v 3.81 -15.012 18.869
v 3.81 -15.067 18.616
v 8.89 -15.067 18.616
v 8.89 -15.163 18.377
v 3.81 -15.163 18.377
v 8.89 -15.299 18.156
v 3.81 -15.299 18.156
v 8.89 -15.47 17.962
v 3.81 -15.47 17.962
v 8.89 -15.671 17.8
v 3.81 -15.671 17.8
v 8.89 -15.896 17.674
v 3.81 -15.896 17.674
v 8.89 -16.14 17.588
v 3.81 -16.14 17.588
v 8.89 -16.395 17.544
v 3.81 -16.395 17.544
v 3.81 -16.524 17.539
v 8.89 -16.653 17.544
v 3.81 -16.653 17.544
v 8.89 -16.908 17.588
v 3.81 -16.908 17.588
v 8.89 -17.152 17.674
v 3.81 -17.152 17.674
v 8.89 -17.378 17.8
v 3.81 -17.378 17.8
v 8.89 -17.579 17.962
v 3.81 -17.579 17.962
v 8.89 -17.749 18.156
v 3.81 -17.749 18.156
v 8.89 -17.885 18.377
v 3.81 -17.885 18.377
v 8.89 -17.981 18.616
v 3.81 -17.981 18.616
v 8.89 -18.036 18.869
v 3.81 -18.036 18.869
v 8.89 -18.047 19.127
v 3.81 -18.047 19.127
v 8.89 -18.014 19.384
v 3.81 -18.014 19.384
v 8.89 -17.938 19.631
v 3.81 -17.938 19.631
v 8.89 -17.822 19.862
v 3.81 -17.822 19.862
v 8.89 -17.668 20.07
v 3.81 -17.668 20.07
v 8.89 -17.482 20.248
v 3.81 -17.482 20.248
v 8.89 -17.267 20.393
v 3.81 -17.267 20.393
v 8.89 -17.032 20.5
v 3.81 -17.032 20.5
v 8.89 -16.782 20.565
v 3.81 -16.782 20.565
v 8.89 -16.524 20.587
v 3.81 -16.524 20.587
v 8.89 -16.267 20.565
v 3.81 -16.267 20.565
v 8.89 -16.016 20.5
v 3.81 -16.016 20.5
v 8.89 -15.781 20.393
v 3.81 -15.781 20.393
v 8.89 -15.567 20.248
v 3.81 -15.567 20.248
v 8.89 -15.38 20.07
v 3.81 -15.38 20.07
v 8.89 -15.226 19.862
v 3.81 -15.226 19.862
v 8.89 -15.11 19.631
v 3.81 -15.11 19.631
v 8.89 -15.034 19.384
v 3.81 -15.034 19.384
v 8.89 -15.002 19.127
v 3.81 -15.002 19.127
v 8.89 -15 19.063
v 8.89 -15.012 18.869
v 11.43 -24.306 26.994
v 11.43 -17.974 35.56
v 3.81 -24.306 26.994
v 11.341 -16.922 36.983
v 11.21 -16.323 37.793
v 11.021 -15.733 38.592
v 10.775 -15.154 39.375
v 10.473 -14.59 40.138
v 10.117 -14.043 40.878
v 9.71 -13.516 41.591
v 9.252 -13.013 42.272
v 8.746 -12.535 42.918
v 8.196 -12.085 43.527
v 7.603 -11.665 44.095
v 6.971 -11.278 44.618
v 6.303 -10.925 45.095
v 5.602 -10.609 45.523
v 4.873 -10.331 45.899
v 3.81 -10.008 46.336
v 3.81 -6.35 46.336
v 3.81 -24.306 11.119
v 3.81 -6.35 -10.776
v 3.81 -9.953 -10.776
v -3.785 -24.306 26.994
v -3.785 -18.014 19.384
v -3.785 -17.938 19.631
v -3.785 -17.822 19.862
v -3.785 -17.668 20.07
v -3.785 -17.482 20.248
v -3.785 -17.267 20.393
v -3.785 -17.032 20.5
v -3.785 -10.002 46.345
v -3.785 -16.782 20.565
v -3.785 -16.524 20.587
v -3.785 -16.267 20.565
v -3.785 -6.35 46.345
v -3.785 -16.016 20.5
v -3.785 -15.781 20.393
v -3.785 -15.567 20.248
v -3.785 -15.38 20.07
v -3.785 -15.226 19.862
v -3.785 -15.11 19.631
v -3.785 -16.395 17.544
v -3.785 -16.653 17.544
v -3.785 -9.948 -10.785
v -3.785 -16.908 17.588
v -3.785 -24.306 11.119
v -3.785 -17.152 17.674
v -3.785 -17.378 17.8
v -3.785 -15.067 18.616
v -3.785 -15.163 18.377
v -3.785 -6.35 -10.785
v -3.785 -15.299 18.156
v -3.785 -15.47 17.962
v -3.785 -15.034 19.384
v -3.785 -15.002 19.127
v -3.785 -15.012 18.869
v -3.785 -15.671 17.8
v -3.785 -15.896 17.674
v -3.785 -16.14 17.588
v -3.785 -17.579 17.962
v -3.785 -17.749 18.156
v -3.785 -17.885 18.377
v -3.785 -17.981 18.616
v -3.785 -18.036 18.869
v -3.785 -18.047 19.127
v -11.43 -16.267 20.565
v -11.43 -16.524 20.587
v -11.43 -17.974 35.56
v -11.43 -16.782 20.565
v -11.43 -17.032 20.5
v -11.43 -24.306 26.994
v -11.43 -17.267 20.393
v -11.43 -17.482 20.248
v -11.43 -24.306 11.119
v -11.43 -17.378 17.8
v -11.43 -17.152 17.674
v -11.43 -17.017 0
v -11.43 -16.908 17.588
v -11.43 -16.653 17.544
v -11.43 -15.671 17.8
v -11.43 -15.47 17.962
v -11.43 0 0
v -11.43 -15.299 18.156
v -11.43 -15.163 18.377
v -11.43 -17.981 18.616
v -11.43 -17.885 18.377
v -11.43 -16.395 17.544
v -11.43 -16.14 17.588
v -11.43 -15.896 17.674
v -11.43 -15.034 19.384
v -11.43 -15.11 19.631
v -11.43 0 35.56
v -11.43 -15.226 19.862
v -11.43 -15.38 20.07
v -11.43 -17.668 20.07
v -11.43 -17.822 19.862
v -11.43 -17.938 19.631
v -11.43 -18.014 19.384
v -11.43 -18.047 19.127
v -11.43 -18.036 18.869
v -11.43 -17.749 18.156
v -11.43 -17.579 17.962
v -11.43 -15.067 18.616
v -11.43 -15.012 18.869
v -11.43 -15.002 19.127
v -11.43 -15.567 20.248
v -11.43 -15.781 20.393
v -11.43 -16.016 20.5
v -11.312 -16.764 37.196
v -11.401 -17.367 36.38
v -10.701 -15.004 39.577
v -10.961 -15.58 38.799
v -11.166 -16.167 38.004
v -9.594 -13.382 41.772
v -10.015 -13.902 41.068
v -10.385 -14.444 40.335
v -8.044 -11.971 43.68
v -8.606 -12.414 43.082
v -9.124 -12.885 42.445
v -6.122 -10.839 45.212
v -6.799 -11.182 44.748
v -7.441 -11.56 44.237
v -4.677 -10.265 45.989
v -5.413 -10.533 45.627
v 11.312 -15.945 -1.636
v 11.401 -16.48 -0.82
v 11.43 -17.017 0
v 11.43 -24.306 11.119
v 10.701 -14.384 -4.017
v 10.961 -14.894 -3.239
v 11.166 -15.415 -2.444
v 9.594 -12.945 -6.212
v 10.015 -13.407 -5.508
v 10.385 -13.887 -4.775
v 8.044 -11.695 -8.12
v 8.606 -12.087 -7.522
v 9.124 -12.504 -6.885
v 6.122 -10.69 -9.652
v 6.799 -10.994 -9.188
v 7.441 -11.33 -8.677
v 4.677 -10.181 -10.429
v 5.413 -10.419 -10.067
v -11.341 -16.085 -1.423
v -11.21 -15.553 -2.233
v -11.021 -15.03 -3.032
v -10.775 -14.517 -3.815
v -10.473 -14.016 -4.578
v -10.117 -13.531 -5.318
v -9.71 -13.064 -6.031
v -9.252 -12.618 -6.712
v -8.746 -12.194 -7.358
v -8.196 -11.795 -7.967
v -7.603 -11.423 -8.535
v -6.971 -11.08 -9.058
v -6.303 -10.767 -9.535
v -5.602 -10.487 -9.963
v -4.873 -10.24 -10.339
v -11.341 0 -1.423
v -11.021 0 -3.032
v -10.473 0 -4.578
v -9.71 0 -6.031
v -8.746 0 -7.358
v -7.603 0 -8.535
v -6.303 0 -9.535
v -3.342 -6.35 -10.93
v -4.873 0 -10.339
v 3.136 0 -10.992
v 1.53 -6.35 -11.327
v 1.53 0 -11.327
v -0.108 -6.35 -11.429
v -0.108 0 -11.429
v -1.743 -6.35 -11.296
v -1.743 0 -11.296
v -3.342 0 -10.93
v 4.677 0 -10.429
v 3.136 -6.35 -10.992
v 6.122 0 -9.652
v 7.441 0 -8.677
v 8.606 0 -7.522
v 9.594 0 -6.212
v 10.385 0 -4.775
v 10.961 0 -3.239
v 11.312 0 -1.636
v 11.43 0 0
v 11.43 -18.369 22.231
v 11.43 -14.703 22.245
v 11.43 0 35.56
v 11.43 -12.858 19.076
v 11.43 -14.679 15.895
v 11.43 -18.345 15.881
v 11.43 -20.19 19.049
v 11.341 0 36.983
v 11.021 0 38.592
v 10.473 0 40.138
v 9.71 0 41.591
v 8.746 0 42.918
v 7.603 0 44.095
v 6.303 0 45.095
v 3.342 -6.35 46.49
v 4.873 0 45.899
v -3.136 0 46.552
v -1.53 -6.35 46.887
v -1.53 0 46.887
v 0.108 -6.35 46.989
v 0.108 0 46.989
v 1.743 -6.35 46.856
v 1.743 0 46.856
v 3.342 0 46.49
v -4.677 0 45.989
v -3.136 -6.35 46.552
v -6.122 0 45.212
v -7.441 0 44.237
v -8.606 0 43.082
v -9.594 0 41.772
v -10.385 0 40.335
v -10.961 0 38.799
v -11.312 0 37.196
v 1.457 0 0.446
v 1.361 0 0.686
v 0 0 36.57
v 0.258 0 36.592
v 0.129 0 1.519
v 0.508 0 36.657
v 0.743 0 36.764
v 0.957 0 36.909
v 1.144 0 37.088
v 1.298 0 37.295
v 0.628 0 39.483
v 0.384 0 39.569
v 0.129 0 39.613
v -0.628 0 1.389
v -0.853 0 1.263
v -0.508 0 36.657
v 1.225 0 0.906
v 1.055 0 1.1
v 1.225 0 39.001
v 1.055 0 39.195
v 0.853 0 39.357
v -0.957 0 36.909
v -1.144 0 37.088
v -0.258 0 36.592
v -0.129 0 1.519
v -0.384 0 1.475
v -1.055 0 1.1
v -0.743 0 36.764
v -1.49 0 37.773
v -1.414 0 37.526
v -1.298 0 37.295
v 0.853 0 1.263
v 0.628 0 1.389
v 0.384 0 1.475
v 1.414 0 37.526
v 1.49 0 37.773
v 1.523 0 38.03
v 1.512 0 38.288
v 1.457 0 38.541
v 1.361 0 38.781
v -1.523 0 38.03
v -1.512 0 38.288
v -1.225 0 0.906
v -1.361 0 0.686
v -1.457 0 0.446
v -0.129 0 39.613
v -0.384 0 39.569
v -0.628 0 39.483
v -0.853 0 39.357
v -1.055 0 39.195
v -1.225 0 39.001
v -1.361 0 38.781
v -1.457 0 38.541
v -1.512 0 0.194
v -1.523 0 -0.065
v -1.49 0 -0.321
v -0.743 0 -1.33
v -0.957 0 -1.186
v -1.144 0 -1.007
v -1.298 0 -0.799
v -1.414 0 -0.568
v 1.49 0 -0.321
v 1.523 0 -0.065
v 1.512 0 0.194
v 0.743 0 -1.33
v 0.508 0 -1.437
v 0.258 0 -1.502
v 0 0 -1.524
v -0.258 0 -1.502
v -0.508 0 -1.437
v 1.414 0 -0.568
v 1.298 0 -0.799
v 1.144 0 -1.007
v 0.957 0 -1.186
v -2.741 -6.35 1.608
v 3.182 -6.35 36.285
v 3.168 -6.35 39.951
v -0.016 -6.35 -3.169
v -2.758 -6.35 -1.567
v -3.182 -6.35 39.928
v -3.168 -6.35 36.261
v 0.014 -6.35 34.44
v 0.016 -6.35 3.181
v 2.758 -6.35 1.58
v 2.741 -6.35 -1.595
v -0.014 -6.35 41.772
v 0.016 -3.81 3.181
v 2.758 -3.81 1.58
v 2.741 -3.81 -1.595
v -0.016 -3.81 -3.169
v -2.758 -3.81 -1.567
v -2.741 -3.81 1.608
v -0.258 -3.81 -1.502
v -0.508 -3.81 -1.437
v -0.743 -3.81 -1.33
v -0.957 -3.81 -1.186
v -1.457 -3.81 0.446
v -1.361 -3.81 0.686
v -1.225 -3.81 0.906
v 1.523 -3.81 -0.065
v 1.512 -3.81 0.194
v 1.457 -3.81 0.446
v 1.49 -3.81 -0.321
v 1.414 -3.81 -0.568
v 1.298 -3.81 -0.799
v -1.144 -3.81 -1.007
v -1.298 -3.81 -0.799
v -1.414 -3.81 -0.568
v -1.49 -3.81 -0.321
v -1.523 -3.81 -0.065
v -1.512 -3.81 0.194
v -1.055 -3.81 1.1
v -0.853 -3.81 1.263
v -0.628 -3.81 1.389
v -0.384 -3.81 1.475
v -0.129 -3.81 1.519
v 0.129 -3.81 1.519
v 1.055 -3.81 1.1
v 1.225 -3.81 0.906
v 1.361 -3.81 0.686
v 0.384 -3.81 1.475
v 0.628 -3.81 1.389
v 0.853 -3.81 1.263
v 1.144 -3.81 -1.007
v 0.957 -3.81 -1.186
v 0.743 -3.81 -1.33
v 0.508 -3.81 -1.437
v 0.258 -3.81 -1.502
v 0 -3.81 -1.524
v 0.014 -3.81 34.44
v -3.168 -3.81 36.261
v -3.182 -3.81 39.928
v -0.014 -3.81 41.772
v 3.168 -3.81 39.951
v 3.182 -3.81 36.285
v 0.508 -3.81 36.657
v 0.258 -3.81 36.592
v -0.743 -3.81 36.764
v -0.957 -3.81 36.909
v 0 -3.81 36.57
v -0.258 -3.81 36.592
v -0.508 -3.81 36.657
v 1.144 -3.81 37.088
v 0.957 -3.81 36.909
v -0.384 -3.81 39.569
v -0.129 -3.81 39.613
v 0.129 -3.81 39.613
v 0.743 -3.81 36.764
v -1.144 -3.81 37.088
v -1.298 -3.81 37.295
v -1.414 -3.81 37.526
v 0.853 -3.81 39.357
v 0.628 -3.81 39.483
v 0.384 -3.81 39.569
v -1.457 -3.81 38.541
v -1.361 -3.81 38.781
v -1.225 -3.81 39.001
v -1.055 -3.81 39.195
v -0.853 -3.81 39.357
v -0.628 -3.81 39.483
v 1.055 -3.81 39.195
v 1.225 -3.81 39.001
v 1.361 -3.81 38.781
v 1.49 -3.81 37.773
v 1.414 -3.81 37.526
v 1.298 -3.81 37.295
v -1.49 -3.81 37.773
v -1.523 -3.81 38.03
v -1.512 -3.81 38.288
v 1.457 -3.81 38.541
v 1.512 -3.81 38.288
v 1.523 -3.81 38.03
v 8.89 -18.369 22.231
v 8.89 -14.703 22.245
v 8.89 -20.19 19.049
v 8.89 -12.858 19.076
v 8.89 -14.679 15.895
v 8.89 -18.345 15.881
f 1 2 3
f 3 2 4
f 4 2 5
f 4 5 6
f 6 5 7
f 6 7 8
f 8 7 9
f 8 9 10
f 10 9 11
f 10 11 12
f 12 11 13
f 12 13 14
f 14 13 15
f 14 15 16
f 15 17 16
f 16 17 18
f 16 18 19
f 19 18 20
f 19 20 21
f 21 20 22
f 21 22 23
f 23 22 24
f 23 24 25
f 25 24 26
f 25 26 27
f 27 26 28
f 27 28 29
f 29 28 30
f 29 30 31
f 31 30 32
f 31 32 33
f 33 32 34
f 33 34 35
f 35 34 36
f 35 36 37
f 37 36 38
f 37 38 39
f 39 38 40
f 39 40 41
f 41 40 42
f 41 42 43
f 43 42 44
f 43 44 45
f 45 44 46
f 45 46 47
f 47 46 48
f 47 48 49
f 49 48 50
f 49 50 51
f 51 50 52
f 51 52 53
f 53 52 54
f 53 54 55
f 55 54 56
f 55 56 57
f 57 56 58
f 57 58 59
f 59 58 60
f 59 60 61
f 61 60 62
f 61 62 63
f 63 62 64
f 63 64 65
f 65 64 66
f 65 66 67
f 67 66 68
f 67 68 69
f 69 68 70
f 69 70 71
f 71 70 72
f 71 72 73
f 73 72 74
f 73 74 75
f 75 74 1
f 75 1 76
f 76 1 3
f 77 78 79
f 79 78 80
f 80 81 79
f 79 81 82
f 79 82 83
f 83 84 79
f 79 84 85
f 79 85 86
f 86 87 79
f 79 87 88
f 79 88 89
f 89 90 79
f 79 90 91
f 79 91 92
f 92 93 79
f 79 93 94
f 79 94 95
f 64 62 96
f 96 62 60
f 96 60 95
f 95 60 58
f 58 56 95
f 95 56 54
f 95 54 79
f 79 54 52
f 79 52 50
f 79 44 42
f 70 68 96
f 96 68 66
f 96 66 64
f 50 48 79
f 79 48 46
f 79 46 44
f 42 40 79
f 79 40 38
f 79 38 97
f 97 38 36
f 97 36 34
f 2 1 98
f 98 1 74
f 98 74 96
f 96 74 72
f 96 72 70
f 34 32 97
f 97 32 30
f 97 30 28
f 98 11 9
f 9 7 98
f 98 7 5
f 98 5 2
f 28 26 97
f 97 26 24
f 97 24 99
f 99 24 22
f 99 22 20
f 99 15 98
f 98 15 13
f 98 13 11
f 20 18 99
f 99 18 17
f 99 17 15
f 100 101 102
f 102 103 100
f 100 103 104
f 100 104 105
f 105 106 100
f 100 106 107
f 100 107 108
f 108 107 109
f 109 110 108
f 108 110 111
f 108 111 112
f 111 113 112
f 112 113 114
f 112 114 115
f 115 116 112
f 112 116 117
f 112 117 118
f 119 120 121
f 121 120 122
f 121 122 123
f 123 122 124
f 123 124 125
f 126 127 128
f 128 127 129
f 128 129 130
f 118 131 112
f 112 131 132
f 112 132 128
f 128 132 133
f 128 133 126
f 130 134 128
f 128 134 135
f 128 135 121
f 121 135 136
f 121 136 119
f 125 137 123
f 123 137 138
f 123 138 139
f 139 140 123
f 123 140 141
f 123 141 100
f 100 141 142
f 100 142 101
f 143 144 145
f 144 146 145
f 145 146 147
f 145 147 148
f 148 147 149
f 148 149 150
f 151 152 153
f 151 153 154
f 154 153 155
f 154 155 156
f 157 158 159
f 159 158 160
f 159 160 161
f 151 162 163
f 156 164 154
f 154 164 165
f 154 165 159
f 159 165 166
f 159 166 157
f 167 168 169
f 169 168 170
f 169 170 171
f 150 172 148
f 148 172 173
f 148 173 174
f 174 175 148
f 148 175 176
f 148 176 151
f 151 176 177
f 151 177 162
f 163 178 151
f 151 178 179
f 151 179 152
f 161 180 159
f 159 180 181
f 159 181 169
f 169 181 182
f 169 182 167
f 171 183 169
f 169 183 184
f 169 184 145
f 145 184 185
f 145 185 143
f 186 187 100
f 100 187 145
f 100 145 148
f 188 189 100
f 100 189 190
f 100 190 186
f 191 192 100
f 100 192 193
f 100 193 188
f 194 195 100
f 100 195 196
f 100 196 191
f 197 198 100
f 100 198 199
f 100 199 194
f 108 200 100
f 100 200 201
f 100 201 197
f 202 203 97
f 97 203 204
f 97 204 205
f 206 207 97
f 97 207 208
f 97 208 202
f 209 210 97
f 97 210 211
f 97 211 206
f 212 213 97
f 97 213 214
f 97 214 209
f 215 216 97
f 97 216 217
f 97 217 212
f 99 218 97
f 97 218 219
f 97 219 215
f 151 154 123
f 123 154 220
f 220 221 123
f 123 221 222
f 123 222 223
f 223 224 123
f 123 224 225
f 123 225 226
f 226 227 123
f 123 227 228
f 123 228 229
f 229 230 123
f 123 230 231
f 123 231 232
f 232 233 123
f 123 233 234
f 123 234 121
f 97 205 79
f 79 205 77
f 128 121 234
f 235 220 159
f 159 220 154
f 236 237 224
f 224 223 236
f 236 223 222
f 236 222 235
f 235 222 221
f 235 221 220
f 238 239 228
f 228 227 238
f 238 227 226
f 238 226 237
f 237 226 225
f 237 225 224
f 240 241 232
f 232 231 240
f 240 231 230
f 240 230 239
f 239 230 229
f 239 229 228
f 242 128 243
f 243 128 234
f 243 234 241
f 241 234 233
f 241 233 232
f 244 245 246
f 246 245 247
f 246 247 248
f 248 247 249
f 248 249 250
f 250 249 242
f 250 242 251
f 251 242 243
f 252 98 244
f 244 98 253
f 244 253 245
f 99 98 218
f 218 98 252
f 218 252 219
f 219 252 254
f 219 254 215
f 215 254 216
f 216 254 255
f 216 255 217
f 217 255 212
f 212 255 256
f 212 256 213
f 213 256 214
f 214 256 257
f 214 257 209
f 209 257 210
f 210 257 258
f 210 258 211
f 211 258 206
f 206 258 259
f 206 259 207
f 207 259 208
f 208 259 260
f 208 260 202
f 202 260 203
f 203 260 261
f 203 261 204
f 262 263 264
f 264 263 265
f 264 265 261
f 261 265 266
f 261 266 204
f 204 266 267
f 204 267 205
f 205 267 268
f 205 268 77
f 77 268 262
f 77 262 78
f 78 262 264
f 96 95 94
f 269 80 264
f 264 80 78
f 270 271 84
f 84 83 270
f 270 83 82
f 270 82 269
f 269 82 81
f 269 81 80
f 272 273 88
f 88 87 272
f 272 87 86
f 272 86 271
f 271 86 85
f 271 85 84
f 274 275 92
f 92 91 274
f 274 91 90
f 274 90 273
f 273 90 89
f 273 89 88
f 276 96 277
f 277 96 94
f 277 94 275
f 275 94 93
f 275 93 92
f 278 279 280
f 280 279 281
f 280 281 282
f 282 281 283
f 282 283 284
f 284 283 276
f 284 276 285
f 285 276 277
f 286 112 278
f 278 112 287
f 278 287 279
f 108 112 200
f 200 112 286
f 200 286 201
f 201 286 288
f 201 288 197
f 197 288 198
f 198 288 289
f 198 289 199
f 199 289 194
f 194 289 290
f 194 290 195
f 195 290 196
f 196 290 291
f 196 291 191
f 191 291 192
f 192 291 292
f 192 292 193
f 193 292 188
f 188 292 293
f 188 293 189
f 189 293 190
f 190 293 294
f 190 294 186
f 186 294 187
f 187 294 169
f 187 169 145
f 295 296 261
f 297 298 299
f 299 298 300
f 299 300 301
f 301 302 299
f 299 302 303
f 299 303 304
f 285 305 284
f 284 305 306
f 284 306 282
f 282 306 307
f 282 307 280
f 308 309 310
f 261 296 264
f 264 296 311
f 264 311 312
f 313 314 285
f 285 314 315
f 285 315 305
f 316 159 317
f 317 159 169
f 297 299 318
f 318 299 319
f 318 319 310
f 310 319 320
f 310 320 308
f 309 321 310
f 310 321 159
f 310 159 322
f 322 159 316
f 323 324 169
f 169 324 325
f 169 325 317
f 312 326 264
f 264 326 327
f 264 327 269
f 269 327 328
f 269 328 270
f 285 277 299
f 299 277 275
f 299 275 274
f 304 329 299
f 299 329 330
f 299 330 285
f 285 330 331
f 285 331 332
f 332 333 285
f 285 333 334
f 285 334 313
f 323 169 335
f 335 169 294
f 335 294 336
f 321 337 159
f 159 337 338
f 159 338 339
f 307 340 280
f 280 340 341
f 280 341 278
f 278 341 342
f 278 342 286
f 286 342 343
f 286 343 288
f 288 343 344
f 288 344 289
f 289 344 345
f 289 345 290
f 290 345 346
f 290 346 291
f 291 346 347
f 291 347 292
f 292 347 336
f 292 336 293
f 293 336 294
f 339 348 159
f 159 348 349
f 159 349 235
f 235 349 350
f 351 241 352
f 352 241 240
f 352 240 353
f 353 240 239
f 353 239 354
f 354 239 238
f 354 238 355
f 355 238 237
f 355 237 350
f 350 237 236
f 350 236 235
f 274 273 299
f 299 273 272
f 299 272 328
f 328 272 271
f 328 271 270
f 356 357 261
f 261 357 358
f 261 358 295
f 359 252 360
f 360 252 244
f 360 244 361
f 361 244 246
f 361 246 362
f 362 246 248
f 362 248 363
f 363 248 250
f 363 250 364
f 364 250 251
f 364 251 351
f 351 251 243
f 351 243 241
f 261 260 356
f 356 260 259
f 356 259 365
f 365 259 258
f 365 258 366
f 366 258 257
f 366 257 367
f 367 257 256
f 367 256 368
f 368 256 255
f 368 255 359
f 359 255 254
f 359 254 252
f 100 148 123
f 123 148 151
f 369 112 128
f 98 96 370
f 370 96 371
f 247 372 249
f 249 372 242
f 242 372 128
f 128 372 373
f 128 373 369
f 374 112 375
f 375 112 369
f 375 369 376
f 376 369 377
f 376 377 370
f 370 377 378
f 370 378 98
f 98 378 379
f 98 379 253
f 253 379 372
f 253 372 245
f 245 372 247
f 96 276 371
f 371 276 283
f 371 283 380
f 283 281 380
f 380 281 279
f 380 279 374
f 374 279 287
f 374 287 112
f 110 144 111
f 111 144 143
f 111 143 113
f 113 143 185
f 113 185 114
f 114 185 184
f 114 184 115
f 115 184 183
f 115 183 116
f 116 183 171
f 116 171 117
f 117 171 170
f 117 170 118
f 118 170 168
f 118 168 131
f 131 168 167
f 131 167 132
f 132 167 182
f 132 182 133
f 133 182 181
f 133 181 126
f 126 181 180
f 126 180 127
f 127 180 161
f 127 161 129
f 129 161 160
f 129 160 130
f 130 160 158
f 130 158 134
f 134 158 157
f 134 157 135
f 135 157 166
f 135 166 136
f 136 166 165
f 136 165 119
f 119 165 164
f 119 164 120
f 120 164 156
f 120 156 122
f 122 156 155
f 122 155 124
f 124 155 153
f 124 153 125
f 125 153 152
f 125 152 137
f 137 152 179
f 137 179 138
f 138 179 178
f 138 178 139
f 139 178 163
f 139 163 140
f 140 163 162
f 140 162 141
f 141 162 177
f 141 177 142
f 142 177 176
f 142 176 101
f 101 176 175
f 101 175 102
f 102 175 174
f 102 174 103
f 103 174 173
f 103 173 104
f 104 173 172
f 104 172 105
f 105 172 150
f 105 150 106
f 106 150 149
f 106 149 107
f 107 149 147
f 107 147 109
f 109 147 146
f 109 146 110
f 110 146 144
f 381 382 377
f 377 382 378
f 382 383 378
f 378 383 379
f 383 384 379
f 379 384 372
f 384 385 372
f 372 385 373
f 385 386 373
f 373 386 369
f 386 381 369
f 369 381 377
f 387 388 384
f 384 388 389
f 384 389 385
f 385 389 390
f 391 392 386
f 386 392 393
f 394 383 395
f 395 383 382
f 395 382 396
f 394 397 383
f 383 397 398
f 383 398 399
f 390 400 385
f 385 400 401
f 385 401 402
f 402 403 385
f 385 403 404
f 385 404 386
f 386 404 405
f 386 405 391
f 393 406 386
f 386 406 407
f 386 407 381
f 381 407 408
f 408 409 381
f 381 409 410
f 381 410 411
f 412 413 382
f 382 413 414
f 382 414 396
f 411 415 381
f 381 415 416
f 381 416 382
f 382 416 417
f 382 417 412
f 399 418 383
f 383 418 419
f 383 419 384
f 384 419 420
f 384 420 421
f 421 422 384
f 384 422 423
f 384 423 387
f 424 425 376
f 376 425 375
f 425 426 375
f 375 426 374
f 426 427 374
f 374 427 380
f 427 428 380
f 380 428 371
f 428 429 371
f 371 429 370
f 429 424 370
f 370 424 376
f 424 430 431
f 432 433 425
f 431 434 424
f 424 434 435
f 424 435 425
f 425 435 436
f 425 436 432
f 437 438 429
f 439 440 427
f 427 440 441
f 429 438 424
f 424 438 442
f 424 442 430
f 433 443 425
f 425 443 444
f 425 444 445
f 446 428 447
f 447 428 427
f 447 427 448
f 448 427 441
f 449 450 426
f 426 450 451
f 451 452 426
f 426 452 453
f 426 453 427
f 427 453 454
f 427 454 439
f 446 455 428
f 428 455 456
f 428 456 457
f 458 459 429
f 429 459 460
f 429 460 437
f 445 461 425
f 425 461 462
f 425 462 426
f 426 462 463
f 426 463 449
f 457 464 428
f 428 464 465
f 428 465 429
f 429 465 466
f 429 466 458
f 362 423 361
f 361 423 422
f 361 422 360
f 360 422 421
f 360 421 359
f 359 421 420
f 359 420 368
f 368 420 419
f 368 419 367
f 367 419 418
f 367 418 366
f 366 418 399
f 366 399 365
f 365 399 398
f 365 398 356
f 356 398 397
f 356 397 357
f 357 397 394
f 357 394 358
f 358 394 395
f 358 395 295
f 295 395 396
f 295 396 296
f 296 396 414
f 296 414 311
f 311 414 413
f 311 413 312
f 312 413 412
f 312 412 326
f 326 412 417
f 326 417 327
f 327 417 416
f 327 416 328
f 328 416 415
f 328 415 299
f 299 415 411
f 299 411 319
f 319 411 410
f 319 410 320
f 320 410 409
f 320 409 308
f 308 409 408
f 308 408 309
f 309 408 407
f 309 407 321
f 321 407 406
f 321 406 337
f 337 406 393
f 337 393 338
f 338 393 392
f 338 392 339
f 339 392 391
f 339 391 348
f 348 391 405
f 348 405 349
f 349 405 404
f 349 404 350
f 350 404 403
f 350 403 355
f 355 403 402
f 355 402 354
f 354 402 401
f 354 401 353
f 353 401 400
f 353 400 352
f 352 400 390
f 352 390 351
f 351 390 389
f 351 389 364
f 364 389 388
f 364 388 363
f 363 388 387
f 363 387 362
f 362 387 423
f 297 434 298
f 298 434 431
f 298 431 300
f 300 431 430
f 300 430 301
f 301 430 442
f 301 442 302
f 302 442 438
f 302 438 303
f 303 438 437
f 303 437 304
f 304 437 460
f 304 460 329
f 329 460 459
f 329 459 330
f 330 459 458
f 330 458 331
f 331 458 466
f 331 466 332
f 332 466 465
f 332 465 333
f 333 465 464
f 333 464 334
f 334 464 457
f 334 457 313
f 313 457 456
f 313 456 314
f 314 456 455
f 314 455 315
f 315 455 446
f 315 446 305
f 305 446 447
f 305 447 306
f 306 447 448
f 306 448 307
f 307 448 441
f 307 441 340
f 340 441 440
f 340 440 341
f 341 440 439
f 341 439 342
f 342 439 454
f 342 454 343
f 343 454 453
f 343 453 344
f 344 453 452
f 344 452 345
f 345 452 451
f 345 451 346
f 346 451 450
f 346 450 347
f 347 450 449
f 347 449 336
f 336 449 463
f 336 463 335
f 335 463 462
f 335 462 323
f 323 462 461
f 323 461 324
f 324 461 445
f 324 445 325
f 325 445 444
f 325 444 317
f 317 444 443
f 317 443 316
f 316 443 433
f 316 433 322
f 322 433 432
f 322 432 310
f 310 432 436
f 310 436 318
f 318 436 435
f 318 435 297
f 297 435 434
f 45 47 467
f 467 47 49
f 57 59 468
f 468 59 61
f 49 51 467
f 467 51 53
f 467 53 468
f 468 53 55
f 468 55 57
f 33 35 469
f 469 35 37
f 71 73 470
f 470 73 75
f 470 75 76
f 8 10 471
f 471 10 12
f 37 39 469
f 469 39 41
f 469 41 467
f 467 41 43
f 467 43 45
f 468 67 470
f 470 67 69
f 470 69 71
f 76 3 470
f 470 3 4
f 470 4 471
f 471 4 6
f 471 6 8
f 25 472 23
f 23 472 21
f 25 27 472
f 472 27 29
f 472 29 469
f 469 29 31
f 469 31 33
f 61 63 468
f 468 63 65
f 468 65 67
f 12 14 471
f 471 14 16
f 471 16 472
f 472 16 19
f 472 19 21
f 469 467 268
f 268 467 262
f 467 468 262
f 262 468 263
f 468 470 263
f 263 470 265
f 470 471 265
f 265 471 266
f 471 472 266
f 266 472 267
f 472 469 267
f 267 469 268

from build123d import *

# Parameters (mm, degrees)
BOSS_EXTRUDE1_DEPTH      = 6.35
BOSS_EXTRUDE3_DEPTH      = 11.43
BOSS_EXTRUDE3_DEPTH_BACK = 11.43
CUT_EXTRUDE13_DEPTH      = 55.124538916
CUT_EXTRUDE13_DEPTH_BACK = 55.124538916
SKETCH11_W               = 7.59470995
SKETCH11_H               = 29.201393096
CUT_EXTRUDE19_START      = -17.955569585
CUT_EXTRUDE19_DEPTH      = 17.955569585
SKETCH18_R               = 1.524
CUT_EXTRUDE22_DEPTH      = 58.631592142
CUT_EXTRUDE23_DEPTH      = 2.54
SKETCH22_R               = 1.524
CUT_EXTRUDE24_DEPTH      = 53.524026622
CUT_EXTRUDE25_DEPTH      = 2.54


# Read off the part's stored shape, not the designer's step: Cut-Extrude19
with BuildPart() as part:
    # Sketch1 → Boss-Extrude1 (new body)
    with BuildSketch(Plane(origin=(0, 0, 0), x_dir=(1, 0, 0), z_dir=(0, 1, 0))):
        with BuildLine():
            Line((11.43, 0), (11.43, -35.56))
            ThreePointArc((11.43, -35.56), (0, -46.99), (-11.43, -35.56))
            Line((-11.43, -35.56), (-11.43, 0))
            ThreePointArc((-11.43, 0), (0, 11.43), (11.43, 0))
        make_face()
    extrude(amount=-BOSS_EXTRUDE1_DEPTH)

    # Sketch2 → Boss-Extrude3 (add, two sides: drawn at the far end of the back side and taken through both)
    with BuildSketch(Plane(origin=(0, 0, 0), x_dir=(0, 0, -1), z_dir=(1, 0, 0)).offset(-BOSS_EXTRUDE3_DEPTH_BACK)):
        Polygon((-46.99, -6.35), (11.43, -6.35), (11.43, -9.525), (-11.11884122, -24.305569585), (-26.99384122, -24.305569585), (-46.99, -9.525), align=None)
    extrude(amount=BOSS_EXTRUDE3_DEPTH + BOSS_EXTRUDE3_DEPTH_BACK)

    # Sketch11 → Cut-Extrude13 (cut, two sides: drawn at the far end of the back side and taken through both)
    with BuildSketch(Plane.XY.offset(-CUT_EXTRUDE13_DEPTH_BACK)):
        with Locations((0.012645025, -20.950696548)):
            Rectangle(SKETCH11_W, SKETCH11_H)
    extrude(amount=CUT_EXTRUDE13_DEPTH + CUT_EXTRUDE13_DEPTH_BACK, mode=Mode.SUBTRACT)

    # Cut-Extrude19 outline → Cut-Extrude19 (cut)
    with BuildSketch(Plane(origin=(0, -6.35, 0), x_dir=(1, 0, 0), z_dir=(0, 1, 0)).offset(CUT_EXTRUDE19_START)):
        with BuildLine():
            Line((11.43, 11.43), (3.81, 11.43))
            Line((3.81, 11.43), (3.81, 10.776307345))
            ThreePointArc((3.81, 10.776307345), (9.33255592, 6.599113577), (11.43, 0))
            Line((11.43, 0), (11.43, 11.43))
        make_face()
        with BuildLine():
            ThreePointArc((11.43, -35.56), (9.332555866, -42.159113654), (3.809999822, -46.336307408))
            Line((3.809999822, -46.336307408), (3.81, -46.99))
            Line((3.81, -46.99), (11.43, -46.99))
            Line((11.43, -46.99), (11.43, -35.56))
        make_face()
        with BuildLine():
            ThreePointArc((-11.43, -5.66e-07), (-9.324809404, 6.610055188), (-3.78470995, 10.785215371))
            Line((-3.78470995, 10.785215371), (-3.78470995, 11.43))
            Line((-3.78470995, 11.43), (-11.43, 11.43))
            Line((-11.43, 11.43), (-11.43, -5.66e-07))
        make_face()
        with BuildLine():
            Line((-3.78470995, -46.99), (-3.784709773, -46.345215433))
            ThreePointArc((-3.784709773, -46.345215433), (-9.324809186, -42.170055495), (-11.43, -35.56))
            Line((-11.43, -35.56), (-11.43, -46.99))
            Line((-11.43, -46.99), (-3.78470995, -46.99))
        make_face()
    extrude(amount=CUT_EXTRUDE19_DEPTH, mode=Mode.SUBTRACT)

    # Sketch18 → Cut-Extrude22 (cut, through all)
    with BuildSketch(Plane.ZY.offset(11.43)):
        with Locations((19.062682441, -16.524127344)):
            Circle(SKETCH18_R)
    extrude(amount=-CUT_EXTRUDE22_DEPTH, mode=Mode.SUBTRACT)

    # Sketch20 → Cut-Extrude23 (cut)
    with BuildSketch(Plane.XZ.offset(6.35)):
        Polygon((0.016443108, 3.181298641), (-2.741372229, 1.60806008), (-2.757815336, -1.566897341), (-0.016443108, -3.1686162), (2.741372229, -1.595377639), (2.757815336, 1.579579782), align=None)
        Polygon((0.013747327, 34.440192786), (3.181851342, 36.285172538), (3.168104015, 39.951320972), (-0.013747327, 41.772489655), (-3.181851342, 39.927509903), (-3.168104015, 36.261361468), align=None)
    extrude(amount=-CUT_EXTRUDE23_DEPTH, mode=Mode.SUBTRACT)

    # Sketch22 → Cut-Extrude24 (cut, through all)
    with BuildSketch(Plane.XZ.offset(3.81)):
        with Locations(Location((0, 0, 0), (0, 0, 270))):
            Circle(SKETCH22_R)
        with Locations(Location((0, 38.094435686, 0), (0, 0, 270))):
            Circle(SKETCH22_R)
    extrude(amount=-CUT_EXTRUDE24_DEPTH, mode=Mode.SUBTRACT)

    # Sketch23 → Cut-Extrude25 (cut)
    with BuildSketch(Plane(origin=(11.43, 0, 0), x_dir=(0, 0, -1), z_dir=(1, 0, 0))):
        Polygon((-19.048935114, -20.190275778), (-15.880831099, -18.345296026), (-15.894578426, -14.679147592), (-19.076429768, -12.857978909), (-22.244533783, -14.702958661), (-22.230786456, -18.369107096), align=None)
    extrude(amount=-CUT_EXTRUDE25_DEPTH, mode=Mode.SUBTRACT)


solid = part.part
